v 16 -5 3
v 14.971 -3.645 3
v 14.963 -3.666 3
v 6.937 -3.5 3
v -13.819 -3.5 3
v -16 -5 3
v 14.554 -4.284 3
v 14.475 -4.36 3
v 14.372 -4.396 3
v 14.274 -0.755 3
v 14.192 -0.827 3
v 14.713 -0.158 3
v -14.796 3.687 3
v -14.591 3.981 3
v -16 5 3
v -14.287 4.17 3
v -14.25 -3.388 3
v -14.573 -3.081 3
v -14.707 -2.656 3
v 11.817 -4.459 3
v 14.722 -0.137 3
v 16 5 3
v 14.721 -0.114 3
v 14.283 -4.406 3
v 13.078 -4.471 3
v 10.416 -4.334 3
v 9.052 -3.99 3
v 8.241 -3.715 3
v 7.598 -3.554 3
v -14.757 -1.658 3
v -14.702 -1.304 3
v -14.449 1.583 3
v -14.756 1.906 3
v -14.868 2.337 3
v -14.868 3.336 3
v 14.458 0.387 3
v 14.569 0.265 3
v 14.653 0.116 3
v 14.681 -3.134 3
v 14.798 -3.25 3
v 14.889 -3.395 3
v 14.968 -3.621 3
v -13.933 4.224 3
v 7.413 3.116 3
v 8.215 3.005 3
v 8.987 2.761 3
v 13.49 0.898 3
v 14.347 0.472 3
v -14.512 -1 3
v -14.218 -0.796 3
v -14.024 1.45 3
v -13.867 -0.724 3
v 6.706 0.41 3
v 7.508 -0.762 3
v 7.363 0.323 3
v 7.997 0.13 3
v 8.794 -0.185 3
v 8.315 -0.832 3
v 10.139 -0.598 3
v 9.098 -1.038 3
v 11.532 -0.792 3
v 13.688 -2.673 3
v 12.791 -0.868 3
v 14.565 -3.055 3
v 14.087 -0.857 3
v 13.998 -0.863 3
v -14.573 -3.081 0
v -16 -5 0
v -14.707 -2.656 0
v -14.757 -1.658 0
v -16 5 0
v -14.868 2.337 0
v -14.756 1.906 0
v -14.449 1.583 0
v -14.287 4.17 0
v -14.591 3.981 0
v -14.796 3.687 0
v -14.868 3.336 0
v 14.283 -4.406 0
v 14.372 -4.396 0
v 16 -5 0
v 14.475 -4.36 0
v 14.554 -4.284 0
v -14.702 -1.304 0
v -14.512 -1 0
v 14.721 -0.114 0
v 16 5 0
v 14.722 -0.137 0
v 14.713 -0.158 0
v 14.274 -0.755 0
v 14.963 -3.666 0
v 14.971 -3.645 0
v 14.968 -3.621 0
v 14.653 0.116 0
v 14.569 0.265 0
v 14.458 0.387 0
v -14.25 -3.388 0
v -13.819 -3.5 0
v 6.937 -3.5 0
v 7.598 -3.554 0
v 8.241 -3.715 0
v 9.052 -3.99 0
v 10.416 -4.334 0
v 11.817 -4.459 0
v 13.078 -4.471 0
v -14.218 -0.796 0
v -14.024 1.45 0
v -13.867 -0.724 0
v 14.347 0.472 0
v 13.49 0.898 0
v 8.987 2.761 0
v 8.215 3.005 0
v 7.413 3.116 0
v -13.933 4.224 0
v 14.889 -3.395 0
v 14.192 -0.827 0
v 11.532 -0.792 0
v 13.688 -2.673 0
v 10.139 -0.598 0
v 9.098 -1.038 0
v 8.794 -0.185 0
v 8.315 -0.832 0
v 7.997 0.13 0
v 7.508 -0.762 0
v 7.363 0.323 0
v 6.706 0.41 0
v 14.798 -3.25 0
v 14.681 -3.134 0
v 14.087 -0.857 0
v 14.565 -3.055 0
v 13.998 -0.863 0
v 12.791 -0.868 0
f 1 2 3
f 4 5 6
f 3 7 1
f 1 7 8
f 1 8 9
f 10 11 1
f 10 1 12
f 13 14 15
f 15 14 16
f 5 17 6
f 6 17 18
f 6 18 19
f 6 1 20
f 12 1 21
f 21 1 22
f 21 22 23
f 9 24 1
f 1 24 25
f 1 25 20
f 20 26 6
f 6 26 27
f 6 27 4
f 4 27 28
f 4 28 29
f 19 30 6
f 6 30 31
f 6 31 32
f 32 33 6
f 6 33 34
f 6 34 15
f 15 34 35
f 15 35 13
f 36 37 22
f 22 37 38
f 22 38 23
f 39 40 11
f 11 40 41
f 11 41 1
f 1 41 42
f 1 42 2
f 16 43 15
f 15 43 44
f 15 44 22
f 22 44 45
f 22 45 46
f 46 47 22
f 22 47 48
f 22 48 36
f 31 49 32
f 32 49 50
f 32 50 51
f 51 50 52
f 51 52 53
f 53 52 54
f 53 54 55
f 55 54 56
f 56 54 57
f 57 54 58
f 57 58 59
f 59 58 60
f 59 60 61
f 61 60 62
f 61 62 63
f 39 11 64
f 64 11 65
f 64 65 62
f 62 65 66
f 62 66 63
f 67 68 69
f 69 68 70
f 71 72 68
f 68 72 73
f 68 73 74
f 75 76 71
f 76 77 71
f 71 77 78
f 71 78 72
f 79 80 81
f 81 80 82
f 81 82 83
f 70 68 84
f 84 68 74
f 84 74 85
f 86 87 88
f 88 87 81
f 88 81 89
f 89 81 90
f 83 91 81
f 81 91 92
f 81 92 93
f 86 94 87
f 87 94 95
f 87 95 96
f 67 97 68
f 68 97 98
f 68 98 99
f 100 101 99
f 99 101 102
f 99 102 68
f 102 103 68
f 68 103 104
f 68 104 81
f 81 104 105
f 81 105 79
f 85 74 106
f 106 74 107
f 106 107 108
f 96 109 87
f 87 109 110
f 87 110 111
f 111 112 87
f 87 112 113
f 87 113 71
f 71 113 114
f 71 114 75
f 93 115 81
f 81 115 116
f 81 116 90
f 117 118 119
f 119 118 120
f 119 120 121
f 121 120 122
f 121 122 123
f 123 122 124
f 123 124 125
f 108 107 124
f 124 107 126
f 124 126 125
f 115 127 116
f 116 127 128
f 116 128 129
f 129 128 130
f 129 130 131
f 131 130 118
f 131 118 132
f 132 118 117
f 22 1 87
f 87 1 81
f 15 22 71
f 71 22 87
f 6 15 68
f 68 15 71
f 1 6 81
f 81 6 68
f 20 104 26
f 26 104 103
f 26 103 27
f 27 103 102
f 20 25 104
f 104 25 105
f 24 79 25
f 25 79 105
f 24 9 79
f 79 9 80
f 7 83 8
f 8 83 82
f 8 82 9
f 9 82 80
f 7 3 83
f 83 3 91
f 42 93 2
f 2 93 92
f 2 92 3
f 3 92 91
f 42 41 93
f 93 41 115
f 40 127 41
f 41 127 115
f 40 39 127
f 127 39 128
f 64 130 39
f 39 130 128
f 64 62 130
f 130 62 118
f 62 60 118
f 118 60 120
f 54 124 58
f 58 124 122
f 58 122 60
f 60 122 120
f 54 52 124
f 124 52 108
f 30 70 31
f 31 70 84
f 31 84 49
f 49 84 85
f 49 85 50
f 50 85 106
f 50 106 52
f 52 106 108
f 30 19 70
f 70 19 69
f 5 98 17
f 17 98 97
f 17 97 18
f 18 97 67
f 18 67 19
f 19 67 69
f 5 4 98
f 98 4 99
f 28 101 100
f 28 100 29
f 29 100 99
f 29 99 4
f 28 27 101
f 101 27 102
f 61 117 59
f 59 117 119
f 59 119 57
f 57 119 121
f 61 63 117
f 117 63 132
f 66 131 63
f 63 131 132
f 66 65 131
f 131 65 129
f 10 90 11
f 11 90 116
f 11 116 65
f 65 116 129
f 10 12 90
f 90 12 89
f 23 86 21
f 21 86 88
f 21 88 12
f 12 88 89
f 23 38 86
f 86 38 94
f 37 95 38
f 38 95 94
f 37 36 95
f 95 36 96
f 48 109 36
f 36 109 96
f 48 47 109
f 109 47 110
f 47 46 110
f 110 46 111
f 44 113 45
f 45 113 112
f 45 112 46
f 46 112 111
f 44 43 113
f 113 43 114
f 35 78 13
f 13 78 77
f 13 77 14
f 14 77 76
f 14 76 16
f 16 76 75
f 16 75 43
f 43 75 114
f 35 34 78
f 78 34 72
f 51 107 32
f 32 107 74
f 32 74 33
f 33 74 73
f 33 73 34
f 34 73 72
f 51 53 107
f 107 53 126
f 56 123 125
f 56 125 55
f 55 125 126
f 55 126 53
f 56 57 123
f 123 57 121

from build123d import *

# Parameters (mm, degrees)
SKETCH1_W           = 32
SKETCH1_H           = 10
BOSS_EXTRUDE1_DEPTH = 3


with BuildPart() as part:
    # Sketch1 → Boss-Extrude1 (new body)
    with BuildSketch(Plane.XY):
        Rectangle(SKETCH1_W, SKETCH1_H)
        with BuildLine():
            Line((7.508183749, -0.761607487), (-13.867203265, -0.724177951))
            ThreePointArc((-13.867203265, -0.724177951), (-14.512395102, -0.999943521), (-14.756643634, -1.657713853))
            Line((-14.756643634, -1.657713853), (-14.706591665, -2.655537266))
            ThreePointArc((-14.706591665, -2.655537266), (-14.431377295, -3.255171805), (-13.818707983, -3.5))
            Line((-13.818707983, -3.5), (6.937095785, -3.5))
            ThreePointArc((6.937095785, -3.5), (7.597596174, -3.554033013), (8.240533164, -3.714695258))
            Line((8.240533164, -3.714695258), (9.052328165, -3.989582288))
            ThreePointArc((9.052328165, -3.989582288), (10.41628769, -4.333930654), (11.817489406, -4.458811135))
            Line((11.817489406, -4.458811135), (13.078294798, -4.471023796))
            ThreePointArc((13.078294798, -4.471023796), (13.681851068, -4.457737599), (14.283353389, -4.406243399))
            Line((14.283353389, -4.406243399), (14.372039696, -4.395810789))
            ThreePointArc((14.372039696, -4.395810789), (14.475481789, -4.359873847), (14.554181178, -4.28372835))
            Line((14.554181178, -4.28372835), (14.962805958, -3.66627609))
            ThreePointArc((14.962805958, -3.66627609), (14.970850873, -3.64453799), (14.968401274, -3.621488801))
            Line((14.968401274, -3.621488801), (14.889319766, -3.39508526))
            ThreePointArc((14.889319766, -3.39508526), (14.851890355, -3.317474793), (14.797978781, -3.25025956))
            Line((14.797978781, -3.25025956), (14.680939758, -3.134135777))
            ThreePointArc((14.680939758, -3.134135777), (14.626648009, -3.089415012), (14.565060551, -3.055436699))
            Line((14.565060551, -3.055436699), (13.68837555, -2.672614052))
            Line((13.68837555, -2.672614052), (9.097693662, -1.037644589))
            ThreePointArc((9.097693662, -1.037644589), (8.314712232, -0.83183031), (7.508183749, -0.761607487))
        make_face(mode=Mode.SUBTRACT)
        with BuildLine():
            Line((7.413496434, 3.116023179), (-13.933174328, 4.224273311))
            ThreePointArc((-13.933174328, 4.224273311), (-14.591371345, 3.981176945), (-14.868266258, 3.336468978))
            Line((-14.868266258, 3.336468978), (-14.868266258, 2.337391022))
            ThreePointArc((-14.868266258, 2.337391022), (-14.623438064, 1.724721711), (-14.023803524, 1.449507341))
            Line((-14.023803524, 1.449507341), (6.705937155, 0.409679726))
            ThreePointArc((6.705937155, 0.409679726), (7.362901198, 0.322624707), (7.996981968, 0.129954245))
            Line((7.996981968, 0.129954245), (8.793986262, -0.185257046))
            ThreePointArc((8.793986262, -0.185257046), (10.138981841, -0.597504878), (11.532167784, -0.792426178))
            Line((11.532167784, -0.792426178), (12.790778149, -0.867787535))
            ThreePointArc((12.790778149, -0.867787535), (13.394242147, -0.884755081), (13.997568925, -0.863459703))
            Line((13.997568925, -0.863459703), (14.086666523, -0.857483214))
            ThreePointArc((14.086666523, -0.857483214), (14.191779099, -0.826773657), (14.274194414, -0.754666471))
            Line((14.274194414, -0.754666471), (14.713239307, -0.158460897))
            ThreePointArc((14.713239307, -0.158460897), (14.722363159, -0.137153129), (14.721071357, -0.114010163))
            Line((14.721071357, -0.114010163), (14.653431554, 0.116070922))
            ThreePointArc((14.653431554, 0.116070922), (14.619937284, 0.195459078), (14.569460767, 0.265290779))
            Line((14.569460767, 0.265290779), (14.458386298, 0.387132185))
            ThreePointArc((14.458386298, 0.387132185), (14.406403152, 0.434516711), (14.34659528, 0.471537776))
            Line((14.34659528, 0.471537776), (13.490189844, 0.897800019))
            Line((13.490189844, 0.897800019), (8.987181446, 2.760701173))
            ThreePointArc((8.987181446, 2.760701173), (8.215494123, 3.00548294), (7.413496434, 3.116023179))
        make_face(mode=Mode.SUBTRACT)
    extrude(amount=BOSS_EXTRUDE1_DEPTH)


solid = part.part
